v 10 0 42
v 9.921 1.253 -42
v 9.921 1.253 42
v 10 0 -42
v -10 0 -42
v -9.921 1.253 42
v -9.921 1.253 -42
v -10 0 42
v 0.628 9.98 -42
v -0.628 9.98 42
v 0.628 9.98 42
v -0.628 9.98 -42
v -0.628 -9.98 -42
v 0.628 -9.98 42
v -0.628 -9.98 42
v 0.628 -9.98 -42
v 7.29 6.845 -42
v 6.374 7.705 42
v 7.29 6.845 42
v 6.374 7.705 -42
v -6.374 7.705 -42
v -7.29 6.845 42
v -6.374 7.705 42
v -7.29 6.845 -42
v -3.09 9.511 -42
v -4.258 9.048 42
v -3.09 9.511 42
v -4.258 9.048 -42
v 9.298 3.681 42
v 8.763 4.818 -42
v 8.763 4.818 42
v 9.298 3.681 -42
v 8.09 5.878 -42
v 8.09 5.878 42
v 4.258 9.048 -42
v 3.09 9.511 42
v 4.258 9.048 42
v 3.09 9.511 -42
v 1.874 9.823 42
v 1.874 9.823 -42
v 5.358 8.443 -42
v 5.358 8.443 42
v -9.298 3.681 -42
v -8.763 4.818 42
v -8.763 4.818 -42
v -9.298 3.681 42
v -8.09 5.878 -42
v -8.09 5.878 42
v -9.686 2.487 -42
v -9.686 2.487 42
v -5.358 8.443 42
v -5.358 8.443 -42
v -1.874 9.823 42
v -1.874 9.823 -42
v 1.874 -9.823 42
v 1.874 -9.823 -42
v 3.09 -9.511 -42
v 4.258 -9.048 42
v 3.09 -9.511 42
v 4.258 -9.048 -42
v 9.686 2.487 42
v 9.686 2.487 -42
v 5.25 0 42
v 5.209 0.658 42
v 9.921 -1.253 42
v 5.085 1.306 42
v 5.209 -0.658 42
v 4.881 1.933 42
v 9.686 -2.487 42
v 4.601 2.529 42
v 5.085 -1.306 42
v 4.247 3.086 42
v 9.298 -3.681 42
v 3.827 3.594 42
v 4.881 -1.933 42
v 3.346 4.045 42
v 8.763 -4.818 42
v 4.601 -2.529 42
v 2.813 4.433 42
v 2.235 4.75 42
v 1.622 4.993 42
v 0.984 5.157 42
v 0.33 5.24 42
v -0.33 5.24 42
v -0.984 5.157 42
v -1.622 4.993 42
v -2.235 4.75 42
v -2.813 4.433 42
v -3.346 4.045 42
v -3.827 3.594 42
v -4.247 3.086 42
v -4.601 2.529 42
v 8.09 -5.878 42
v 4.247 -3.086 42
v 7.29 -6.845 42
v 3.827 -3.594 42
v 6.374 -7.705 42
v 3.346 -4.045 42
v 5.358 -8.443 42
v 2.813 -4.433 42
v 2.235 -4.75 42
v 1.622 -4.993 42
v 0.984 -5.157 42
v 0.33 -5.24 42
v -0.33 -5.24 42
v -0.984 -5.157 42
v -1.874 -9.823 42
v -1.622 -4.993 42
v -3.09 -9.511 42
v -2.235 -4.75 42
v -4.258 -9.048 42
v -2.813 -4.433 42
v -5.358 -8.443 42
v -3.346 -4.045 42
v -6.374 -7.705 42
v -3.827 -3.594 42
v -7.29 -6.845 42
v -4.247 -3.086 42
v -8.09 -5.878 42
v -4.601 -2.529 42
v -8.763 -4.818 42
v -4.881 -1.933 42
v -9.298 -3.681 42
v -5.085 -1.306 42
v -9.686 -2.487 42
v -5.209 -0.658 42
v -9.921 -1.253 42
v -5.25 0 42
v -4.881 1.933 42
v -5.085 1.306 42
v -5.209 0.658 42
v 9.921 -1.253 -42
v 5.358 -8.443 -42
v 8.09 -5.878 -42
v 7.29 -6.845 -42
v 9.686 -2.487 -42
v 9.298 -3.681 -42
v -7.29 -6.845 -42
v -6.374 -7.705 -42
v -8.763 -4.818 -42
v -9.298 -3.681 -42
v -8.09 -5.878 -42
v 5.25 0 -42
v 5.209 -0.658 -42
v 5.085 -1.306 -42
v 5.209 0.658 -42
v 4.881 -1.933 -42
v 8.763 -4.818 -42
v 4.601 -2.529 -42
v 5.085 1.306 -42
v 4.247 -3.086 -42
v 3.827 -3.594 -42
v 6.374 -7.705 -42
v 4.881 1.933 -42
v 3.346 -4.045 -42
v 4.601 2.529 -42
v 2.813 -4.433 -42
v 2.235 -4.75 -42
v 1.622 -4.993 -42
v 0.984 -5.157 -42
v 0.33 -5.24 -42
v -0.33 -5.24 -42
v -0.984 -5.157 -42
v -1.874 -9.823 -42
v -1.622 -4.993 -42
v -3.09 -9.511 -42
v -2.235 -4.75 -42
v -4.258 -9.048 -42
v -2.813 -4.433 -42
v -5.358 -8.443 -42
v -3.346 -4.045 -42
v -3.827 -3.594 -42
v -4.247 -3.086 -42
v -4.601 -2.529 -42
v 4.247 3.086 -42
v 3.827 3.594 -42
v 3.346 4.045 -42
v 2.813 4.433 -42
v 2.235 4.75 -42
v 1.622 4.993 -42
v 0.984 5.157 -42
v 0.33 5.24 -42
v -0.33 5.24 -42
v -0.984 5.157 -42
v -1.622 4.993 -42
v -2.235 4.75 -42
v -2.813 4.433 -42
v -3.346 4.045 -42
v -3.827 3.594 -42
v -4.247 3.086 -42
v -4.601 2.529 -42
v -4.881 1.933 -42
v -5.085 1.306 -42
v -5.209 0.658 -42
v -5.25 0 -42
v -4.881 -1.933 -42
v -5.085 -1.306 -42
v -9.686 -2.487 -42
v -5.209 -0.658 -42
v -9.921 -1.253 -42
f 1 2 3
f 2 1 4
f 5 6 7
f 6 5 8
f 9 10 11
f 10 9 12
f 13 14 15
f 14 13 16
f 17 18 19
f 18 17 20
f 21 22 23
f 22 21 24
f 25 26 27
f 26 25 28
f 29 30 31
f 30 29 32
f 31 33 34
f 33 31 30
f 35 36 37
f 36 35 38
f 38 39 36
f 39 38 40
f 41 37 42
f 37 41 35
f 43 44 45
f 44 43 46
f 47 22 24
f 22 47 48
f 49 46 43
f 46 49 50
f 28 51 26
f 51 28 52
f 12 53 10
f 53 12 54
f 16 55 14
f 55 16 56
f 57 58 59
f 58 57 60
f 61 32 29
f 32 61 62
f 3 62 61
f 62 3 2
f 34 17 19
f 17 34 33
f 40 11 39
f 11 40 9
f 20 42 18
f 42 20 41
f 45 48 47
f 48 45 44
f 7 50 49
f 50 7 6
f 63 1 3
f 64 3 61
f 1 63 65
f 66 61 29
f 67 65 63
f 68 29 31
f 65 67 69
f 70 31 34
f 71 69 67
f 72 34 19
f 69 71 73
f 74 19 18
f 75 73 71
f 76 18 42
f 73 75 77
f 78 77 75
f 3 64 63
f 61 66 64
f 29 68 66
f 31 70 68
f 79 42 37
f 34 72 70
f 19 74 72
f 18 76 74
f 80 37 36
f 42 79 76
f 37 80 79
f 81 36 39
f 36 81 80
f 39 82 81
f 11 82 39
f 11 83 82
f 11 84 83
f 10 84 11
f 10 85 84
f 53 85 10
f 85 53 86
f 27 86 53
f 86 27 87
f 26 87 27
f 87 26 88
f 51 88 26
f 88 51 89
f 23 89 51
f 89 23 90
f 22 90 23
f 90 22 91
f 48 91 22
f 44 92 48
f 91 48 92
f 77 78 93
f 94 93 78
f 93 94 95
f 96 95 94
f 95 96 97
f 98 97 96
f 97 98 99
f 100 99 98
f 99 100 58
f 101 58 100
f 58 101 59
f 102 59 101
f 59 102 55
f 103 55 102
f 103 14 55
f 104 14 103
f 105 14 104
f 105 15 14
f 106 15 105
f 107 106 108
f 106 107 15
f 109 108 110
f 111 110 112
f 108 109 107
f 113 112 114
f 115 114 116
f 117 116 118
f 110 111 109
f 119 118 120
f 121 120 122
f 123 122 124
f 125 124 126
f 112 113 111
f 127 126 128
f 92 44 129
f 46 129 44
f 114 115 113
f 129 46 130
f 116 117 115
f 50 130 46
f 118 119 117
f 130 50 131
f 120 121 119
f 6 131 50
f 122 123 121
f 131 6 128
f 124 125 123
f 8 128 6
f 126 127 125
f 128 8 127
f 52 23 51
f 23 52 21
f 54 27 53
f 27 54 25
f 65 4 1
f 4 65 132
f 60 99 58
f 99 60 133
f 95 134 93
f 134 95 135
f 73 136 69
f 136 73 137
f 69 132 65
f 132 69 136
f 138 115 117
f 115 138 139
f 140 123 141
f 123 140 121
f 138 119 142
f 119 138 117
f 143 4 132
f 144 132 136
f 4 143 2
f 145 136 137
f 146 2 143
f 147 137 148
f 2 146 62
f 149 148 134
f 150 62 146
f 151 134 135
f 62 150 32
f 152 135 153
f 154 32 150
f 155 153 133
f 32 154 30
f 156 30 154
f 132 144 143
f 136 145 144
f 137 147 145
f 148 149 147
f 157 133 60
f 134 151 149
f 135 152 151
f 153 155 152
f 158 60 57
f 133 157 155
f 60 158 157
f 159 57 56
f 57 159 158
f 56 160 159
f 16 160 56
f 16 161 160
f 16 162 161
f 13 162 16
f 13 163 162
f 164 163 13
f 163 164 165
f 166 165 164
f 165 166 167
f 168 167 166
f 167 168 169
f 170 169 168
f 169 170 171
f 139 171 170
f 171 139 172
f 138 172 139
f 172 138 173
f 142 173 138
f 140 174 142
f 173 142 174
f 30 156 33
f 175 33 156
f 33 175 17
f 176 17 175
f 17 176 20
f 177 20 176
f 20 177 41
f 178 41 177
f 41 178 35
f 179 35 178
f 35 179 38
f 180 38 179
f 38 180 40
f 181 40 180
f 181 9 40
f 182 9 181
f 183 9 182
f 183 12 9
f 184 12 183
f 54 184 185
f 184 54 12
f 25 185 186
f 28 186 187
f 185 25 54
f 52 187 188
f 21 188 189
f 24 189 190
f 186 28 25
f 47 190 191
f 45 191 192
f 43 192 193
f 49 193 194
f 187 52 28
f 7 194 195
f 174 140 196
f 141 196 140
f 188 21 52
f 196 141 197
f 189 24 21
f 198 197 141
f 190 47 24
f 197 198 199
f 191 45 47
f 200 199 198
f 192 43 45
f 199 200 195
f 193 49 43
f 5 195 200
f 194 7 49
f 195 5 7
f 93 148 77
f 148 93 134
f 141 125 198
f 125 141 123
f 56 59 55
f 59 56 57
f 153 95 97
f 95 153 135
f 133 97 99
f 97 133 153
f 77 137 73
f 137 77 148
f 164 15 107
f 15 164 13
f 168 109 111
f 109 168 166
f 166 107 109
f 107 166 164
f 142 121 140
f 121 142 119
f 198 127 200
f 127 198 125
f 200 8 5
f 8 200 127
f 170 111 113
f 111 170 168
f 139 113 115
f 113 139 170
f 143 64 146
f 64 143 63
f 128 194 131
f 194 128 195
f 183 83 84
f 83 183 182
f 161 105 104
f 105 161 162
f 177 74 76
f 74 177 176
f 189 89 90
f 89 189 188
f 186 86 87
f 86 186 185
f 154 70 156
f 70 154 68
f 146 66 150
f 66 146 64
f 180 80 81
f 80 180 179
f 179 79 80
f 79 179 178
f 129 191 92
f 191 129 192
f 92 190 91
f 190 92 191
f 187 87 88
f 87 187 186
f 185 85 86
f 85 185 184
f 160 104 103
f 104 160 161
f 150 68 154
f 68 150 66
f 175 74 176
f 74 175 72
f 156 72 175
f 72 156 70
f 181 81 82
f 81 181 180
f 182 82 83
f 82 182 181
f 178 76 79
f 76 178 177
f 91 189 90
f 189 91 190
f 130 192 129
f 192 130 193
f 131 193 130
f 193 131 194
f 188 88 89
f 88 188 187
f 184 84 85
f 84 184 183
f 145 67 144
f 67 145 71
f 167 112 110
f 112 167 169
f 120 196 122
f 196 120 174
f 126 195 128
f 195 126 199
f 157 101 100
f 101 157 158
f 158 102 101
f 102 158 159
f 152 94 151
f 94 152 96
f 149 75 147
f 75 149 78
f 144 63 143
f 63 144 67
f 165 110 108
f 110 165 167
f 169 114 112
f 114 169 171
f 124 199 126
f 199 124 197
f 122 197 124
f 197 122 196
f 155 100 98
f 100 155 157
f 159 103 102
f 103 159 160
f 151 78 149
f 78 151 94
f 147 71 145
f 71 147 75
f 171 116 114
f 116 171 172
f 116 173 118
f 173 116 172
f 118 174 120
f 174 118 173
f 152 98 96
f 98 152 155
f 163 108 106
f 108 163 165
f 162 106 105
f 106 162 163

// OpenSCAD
$fn = 50;


difference() {
	union() {
		translate(v = [0, 0, -42.0000000000]) {
			cylinder(h = 84, r = 10.0000000000);
		}
	}
	union() {
		translate(v = [0, 0, -100.0000000000]) {
			cylinder(h = 200, r = 5.2500000000);
		}
	}
}
